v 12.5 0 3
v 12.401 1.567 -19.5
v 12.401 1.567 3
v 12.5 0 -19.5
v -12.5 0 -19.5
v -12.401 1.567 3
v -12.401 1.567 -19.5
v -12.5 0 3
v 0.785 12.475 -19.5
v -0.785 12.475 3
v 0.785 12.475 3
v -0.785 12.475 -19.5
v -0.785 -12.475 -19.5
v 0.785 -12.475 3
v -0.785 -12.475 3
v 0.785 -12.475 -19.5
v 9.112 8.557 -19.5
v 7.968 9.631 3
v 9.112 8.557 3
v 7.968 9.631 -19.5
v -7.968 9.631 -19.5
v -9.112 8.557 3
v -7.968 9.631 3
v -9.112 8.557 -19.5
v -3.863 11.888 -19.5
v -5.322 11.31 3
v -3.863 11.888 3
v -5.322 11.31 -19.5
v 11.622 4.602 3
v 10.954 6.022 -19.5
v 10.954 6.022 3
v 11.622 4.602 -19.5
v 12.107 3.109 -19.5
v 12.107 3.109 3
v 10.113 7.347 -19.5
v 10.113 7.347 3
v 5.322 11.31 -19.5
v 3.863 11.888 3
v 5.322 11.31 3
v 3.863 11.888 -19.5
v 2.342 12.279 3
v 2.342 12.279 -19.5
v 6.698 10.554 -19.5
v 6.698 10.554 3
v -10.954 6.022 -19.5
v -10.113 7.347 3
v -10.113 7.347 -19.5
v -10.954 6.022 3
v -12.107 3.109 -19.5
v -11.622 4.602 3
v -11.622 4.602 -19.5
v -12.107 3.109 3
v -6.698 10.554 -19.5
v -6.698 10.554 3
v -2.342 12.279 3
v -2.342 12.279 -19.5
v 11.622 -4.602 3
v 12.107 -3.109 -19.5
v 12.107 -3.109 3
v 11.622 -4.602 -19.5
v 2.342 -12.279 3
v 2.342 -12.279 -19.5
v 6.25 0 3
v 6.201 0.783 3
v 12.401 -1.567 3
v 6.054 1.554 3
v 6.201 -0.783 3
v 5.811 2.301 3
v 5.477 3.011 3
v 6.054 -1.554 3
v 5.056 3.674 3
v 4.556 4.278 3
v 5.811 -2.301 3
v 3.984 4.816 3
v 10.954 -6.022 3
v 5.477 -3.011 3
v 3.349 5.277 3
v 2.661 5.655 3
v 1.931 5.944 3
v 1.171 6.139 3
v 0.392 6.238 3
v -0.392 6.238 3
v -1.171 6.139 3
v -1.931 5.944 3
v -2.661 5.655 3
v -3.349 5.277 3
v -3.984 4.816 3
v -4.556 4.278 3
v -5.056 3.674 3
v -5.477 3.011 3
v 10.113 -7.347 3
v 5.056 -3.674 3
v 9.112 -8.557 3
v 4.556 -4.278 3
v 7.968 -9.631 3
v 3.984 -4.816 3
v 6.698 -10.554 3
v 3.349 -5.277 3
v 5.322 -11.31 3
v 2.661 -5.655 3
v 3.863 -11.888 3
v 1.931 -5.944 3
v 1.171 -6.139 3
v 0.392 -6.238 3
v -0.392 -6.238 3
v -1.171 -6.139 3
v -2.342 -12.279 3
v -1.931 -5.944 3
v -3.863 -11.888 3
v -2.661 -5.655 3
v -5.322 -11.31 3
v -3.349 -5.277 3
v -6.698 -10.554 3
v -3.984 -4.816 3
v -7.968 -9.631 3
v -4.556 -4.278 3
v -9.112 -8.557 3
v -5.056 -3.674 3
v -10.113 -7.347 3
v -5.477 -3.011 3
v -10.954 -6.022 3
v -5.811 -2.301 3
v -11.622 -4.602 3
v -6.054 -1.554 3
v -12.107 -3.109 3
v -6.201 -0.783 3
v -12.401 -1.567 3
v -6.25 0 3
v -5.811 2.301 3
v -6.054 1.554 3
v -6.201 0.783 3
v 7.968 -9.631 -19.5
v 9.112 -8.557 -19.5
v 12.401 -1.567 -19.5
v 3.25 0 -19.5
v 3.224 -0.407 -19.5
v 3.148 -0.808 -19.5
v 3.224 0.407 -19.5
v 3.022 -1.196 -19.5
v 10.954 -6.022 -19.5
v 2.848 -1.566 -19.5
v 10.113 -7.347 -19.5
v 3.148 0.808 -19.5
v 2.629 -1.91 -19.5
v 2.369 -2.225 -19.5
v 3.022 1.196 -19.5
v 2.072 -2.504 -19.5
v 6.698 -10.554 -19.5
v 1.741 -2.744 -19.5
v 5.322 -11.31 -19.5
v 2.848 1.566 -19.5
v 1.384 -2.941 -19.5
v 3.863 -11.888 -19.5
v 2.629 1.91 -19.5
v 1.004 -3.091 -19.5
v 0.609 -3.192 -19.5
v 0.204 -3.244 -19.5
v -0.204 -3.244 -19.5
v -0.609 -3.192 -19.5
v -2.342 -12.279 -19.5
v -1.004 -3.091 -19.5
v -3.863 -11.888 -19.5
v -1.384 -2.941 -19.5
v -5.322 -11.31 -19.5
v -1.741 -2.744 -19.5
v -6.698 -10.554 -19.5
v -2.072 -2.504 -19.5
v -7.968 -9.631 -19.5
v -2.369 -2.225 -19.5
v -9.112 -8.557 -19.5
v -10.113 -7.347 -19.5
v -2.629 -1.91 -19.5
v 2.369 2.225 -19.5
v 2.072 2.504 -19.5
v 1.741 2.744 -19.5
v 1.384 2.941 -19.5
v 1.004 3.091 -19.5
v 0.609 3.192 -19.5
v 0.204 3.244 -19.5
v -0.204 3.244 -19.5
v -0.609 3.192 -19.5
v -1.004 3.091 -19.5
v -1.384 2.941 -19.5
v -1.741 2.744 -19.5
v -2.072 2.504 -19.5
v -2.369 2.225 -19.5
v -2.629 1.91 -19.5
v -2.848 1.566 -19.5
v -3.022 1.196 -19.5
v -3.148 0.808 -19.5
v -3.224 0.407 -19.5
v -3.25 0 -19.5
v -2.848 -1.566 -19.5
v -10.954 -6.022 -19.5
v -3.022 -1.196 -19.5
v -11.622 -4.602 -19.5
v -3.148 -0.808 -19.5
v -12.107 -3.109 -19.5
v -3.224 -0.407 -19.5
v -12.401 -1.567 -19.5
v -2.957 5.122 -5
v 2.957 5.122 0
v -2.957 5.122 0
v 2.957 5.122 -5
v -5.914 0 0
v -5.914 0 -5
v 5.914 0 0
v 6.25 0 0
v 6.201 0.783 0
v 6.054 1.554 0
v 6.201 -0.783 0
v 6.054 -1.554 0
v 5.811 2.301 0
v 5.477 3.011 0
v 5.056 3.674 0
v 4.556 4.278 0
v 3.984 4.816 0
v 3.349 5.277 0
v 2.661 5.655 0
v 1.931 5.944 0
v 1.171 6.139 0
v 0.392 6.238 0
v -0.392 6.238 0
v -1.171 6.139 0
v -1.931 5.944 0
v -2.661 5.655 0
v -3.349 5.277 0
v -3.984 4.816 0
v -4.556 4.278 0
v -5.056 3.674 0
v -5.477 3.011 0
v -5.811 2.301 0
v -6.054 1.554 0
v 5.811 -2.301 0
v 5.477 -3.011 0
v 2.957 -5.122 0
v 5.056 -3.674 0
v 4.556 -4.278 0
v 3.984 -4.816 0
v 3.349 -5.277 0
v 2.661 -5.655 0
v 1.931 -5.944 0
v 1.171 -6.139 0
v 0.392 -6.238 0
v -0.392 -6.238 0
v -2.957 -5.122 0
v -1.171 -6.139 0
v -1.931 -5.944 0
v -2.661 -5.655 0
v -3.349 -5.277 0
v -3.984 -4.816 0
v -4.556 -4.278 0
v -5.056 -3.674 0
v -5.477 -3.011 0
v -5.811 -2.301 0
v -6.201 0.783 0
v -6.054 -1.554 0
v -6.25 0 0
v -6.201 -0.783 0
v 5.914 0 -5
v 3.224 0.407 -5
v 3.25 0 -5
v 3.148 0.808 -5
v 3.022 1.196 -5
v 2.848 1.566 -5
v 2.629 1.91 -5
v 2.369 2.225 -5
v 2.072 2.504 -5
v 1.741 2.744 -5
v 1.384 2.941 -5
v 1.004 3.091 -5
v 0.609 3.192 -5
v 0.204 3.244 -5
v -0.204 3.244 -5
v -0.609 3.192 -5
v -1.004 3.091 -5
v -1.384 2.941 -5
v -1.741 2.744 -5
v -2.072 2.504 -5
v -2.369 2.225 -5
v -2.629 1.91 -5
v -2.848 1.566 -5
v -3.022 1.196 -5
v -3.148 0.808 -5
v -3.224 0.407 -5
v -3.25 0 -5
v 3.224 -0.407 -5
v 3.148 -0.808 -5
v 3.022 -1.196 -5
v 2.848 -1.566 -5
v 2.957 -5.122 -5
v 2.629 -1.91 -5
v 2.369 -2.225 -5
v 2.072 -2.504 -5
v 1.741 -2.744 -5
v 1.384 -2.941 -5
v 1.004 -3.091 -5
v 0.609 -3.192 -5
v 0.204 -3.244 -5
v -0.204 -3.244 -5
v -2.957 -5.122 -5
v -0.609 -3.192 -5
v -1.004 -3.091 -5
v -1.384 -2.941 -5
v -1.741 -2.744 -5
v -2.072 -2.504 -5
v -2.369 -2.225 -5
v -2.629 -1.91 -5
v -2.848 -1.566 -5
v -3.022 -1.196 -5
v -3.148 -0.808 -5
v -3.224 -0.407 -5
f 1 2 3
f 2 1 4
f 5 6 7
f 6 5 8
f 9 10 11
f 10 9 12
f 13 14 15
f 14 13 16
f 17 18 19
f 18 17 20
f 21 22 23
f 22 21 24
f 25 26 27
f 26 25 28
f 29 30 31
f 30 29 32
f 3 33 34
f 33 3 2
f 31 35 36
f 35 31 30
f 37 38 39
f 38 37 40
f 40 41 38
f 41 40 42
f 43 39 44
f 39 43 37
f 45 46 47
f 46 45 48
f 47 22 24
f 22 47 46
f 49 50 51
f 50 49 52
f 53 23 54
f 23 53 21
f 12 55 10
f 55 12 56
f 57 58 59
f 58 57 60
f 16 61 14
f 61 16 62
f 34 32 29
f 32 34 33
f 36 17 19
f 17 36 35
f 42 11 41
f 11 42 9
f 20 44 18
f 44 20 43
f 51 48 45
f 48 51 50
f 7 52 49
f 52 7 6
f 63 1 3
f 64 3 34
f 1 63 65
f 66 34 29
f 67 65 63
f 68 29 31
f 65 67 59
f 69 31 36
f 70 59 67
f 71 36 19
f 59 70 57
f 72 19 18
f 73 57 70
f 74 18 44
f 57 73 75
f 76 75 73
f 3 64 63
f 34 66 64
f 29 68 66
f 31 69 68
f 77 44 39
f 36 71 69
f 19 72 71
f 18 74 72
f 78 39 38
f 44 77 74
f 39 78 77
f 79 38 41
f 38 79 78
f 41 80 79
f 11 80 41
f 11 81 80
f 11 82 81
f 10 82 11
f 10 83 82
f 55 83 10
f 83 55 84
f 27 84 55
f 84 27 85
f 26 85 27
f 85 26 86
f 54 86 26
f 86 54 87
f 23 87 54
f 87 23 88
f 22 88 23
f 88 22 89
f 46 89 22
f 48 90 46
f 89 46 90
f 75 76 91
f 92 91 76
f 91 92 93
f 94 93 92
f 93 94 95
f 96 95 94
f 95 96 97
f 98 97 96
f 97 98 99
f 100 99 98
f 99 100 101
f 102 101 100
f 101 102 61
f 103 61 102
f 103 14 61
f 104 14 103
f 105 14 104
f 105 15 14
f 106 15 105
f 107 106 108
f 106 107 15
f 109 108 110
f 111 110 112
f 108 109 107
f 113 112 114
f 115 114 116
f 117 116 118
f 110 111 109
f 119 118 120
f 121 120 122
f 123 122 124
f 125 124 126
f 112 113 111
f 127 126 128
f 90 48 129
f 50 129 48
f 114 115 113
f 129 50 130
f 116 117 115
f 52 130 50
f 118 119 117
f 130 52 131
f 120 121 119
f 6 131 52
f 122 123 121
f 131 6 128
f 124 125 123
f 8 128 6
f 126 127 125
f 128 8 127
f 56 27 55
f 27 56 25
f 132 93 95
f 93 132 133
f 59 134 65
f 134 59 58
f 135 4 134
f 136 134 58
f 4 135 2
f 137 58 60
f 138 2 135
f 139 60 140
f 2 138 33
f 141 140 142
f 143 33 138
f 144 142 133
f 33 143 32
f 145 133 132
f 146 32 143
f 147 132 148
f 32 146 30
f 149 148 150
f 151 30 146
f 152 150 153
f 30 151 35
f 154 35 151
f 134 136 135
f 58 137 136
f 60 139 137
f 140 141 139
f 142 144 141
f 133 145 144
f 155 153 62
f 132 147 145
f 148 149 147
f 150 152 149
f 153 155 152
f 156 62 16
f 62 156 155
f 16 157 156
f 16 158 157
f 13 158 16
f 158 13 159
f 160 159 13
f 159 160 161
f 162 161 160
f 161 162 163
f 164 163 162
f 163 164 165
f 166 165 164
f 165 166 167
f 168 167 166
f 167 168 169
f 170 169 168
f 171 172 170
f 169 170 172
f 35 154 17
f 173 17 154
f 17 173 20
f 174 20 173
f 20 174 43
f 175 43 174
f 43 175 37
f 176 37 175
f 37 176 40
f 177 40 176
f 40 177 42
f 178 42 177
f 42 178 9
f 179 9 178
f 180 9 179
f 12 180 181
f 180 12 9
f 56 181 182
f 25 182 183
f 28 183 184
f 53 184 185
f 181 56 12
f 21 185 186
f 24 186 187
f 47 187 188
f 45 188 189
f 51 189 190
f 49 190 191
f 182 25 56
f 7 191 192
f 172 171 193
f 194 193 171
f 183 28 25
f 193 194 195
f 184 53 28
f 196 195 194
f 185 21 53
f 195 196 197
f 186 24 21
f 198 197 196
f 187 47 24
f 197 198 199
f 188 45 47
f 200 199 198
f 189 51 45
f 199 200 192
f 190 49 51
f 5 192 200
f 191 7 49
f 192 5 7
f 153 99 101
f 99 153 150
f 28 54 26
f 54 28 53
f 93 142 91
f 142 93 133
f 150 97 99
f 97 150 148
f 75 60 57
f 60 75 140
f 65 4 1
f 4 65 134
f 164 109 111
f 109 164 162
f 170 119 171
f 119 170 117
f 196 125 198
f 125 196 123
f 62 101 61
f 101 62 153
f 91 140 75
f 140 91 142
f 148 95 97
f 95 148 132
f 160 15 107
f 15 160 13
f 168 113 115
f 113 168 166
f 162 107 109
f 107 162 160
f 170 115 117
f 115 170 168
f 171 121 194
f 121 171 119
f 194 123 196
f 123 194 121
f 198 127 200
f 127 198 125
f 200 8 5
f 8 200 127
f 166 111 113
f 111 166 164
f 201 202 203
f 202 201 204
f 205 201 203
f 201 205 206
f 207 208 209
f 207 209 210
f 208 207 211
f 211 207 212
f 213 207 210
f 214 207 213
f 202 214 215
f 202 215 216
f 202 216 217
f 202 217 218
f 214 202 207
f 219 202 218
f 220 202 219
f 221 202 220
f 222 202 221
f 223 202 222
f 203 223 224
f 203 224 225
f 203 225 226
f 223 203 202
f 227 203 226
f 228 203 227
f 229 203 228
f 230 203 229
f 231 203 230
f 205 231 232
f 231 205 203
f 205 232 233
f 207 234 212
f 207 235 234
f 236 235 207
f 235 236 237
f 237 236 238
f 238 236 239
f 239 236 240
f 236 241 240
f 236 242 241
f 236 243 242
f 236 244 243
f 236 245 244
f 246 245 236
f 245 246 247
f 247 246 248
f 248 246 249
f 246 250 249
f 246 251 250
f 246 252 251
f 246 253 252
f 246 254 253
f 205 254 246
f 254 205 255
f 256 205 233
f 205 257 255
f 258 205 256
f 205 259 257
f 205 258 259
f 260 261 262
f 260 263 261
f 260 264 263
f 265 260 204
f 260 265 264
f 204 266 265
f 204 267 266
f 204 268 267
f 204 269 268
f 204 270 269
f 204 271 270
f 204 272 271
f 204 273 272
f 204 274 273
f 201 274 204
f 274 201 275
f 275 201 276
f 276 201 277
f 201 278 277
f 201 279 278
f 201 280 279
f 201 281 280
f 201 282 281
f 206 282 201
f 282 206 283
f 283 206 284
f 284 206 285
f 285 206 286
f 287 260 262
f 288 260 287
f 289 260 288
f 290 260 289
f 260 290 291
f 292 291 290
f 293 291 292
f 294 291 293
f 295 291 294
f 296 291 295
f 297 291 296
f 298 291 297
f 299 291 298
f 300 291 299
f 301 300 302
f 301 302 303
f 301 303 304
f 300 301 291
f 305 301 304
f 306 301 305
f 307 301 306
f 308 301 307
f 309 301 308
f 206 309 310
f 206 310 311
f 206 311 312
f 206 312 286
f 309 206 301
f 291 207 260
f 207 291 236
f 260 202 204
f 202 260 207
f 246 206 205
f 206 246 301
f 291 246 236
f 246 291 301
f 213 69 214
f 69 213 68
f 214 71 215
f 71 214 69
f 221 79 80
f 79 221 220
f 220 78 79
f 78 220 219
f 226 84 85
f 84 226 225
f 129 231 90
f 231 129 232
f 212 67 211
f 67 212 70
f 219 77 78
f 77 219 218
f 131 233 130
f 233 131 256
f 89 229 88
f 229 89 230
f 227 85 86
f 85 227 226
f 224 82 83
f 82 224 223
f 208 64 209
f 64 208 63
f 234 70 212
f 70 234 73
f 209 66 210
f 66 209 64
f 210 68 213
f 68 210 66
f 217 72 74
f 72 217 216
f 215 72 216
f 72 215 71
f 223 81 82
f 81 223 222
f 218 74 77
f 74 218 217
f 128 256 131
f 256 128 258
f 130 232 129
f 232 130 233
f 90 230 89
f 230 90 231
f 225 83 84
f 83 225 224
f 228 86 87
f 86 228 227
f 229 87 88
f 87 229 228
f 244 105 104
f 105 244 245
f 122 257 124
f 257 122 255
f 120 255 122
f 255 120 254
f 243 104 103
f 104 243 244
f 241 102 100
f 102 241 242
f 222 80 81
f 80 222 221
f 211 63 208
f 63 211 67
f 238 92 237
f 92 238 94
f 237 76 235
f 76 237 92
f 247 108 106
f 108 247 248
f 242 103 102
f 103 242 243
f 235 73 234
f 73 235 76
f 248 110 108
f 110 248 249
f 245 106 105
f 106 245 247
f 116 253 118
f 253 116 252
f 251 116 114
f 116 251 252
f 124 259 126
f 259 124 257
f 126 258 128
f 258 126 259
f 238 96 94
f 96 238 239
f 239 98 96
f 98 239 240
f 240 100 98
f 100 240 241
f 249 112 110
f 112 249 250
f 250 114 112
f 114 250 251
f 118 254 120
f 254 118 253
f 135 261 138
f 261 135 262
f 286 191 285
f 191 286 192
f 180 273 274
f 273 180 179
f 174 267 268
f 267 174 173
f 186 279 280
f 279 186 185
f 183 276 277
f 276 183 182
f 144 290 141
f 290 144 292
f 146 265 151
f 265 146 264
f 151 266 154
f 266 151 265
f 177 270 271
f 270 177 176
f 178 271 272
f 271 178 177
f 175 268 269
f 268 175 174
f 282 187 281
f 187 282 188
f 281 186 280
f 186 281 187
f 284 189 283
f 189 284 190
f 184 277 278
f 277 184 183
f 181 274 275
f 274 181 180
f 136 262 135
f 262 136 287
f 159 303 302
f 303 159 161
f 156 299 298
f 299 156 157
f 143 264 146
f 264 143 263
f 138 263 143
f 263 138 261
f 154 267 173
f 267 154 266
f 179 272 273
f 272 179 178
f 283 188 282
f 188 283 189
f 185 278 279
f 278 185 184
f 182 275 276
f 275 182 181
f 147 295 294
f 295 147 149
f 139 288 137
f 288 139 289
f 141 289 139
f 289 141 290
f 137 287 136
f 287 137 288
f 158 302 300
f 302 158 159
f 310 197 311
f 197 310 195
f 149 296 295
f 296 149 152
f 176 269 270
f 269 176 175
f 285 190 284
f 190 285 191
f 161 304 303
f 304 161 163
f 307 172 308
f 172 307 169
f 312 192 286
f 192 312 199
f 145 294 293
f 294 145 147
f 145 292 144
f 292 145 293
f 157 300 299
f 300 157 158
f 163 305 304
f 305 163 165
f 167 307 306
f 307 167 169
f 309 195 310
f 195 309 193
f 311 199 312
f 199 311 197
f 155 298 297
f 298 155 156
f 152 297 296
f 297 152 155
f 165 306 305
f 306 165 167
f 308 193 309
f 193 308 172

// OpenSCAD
$fn = 50;

difference() {
	union() {
		translate(v = [0, 0, -19.5]) {
			cylinder(h = 22.5, r = 12.5);
		}
		#translate(v = [0, 0, -21.0]) {
			cylinder(h = 21, r = 2.875);
		}
	}
	union() {
		translate(v = [0, 0, 0]) {
			rotate(a = [0, 0, 0]) {
				difference() {
					union() {
						translate(v = [0, 0, -5]) {
							linear_extrude(height = 5) {
								polygon(points = [[5.914249999999999, 0.0], [2.957125, 5.1218907443321156], [-2.9571249999999982, 5.1218907443321156], [-5.914249999999999, 7.242867331857232e-16], [-2.9571250000000022, -5.121890744332115], [2.9571249999999956, -5.121890744332118]]);
							}
						}
					}
					union();
				}
			}
		}
		#cylinder(h = 3, r = 6.25);
		#translate(v = [0, 0, -100.0]) {
			cylinder(h = 200, r = 3.25);
		}
	}
}
